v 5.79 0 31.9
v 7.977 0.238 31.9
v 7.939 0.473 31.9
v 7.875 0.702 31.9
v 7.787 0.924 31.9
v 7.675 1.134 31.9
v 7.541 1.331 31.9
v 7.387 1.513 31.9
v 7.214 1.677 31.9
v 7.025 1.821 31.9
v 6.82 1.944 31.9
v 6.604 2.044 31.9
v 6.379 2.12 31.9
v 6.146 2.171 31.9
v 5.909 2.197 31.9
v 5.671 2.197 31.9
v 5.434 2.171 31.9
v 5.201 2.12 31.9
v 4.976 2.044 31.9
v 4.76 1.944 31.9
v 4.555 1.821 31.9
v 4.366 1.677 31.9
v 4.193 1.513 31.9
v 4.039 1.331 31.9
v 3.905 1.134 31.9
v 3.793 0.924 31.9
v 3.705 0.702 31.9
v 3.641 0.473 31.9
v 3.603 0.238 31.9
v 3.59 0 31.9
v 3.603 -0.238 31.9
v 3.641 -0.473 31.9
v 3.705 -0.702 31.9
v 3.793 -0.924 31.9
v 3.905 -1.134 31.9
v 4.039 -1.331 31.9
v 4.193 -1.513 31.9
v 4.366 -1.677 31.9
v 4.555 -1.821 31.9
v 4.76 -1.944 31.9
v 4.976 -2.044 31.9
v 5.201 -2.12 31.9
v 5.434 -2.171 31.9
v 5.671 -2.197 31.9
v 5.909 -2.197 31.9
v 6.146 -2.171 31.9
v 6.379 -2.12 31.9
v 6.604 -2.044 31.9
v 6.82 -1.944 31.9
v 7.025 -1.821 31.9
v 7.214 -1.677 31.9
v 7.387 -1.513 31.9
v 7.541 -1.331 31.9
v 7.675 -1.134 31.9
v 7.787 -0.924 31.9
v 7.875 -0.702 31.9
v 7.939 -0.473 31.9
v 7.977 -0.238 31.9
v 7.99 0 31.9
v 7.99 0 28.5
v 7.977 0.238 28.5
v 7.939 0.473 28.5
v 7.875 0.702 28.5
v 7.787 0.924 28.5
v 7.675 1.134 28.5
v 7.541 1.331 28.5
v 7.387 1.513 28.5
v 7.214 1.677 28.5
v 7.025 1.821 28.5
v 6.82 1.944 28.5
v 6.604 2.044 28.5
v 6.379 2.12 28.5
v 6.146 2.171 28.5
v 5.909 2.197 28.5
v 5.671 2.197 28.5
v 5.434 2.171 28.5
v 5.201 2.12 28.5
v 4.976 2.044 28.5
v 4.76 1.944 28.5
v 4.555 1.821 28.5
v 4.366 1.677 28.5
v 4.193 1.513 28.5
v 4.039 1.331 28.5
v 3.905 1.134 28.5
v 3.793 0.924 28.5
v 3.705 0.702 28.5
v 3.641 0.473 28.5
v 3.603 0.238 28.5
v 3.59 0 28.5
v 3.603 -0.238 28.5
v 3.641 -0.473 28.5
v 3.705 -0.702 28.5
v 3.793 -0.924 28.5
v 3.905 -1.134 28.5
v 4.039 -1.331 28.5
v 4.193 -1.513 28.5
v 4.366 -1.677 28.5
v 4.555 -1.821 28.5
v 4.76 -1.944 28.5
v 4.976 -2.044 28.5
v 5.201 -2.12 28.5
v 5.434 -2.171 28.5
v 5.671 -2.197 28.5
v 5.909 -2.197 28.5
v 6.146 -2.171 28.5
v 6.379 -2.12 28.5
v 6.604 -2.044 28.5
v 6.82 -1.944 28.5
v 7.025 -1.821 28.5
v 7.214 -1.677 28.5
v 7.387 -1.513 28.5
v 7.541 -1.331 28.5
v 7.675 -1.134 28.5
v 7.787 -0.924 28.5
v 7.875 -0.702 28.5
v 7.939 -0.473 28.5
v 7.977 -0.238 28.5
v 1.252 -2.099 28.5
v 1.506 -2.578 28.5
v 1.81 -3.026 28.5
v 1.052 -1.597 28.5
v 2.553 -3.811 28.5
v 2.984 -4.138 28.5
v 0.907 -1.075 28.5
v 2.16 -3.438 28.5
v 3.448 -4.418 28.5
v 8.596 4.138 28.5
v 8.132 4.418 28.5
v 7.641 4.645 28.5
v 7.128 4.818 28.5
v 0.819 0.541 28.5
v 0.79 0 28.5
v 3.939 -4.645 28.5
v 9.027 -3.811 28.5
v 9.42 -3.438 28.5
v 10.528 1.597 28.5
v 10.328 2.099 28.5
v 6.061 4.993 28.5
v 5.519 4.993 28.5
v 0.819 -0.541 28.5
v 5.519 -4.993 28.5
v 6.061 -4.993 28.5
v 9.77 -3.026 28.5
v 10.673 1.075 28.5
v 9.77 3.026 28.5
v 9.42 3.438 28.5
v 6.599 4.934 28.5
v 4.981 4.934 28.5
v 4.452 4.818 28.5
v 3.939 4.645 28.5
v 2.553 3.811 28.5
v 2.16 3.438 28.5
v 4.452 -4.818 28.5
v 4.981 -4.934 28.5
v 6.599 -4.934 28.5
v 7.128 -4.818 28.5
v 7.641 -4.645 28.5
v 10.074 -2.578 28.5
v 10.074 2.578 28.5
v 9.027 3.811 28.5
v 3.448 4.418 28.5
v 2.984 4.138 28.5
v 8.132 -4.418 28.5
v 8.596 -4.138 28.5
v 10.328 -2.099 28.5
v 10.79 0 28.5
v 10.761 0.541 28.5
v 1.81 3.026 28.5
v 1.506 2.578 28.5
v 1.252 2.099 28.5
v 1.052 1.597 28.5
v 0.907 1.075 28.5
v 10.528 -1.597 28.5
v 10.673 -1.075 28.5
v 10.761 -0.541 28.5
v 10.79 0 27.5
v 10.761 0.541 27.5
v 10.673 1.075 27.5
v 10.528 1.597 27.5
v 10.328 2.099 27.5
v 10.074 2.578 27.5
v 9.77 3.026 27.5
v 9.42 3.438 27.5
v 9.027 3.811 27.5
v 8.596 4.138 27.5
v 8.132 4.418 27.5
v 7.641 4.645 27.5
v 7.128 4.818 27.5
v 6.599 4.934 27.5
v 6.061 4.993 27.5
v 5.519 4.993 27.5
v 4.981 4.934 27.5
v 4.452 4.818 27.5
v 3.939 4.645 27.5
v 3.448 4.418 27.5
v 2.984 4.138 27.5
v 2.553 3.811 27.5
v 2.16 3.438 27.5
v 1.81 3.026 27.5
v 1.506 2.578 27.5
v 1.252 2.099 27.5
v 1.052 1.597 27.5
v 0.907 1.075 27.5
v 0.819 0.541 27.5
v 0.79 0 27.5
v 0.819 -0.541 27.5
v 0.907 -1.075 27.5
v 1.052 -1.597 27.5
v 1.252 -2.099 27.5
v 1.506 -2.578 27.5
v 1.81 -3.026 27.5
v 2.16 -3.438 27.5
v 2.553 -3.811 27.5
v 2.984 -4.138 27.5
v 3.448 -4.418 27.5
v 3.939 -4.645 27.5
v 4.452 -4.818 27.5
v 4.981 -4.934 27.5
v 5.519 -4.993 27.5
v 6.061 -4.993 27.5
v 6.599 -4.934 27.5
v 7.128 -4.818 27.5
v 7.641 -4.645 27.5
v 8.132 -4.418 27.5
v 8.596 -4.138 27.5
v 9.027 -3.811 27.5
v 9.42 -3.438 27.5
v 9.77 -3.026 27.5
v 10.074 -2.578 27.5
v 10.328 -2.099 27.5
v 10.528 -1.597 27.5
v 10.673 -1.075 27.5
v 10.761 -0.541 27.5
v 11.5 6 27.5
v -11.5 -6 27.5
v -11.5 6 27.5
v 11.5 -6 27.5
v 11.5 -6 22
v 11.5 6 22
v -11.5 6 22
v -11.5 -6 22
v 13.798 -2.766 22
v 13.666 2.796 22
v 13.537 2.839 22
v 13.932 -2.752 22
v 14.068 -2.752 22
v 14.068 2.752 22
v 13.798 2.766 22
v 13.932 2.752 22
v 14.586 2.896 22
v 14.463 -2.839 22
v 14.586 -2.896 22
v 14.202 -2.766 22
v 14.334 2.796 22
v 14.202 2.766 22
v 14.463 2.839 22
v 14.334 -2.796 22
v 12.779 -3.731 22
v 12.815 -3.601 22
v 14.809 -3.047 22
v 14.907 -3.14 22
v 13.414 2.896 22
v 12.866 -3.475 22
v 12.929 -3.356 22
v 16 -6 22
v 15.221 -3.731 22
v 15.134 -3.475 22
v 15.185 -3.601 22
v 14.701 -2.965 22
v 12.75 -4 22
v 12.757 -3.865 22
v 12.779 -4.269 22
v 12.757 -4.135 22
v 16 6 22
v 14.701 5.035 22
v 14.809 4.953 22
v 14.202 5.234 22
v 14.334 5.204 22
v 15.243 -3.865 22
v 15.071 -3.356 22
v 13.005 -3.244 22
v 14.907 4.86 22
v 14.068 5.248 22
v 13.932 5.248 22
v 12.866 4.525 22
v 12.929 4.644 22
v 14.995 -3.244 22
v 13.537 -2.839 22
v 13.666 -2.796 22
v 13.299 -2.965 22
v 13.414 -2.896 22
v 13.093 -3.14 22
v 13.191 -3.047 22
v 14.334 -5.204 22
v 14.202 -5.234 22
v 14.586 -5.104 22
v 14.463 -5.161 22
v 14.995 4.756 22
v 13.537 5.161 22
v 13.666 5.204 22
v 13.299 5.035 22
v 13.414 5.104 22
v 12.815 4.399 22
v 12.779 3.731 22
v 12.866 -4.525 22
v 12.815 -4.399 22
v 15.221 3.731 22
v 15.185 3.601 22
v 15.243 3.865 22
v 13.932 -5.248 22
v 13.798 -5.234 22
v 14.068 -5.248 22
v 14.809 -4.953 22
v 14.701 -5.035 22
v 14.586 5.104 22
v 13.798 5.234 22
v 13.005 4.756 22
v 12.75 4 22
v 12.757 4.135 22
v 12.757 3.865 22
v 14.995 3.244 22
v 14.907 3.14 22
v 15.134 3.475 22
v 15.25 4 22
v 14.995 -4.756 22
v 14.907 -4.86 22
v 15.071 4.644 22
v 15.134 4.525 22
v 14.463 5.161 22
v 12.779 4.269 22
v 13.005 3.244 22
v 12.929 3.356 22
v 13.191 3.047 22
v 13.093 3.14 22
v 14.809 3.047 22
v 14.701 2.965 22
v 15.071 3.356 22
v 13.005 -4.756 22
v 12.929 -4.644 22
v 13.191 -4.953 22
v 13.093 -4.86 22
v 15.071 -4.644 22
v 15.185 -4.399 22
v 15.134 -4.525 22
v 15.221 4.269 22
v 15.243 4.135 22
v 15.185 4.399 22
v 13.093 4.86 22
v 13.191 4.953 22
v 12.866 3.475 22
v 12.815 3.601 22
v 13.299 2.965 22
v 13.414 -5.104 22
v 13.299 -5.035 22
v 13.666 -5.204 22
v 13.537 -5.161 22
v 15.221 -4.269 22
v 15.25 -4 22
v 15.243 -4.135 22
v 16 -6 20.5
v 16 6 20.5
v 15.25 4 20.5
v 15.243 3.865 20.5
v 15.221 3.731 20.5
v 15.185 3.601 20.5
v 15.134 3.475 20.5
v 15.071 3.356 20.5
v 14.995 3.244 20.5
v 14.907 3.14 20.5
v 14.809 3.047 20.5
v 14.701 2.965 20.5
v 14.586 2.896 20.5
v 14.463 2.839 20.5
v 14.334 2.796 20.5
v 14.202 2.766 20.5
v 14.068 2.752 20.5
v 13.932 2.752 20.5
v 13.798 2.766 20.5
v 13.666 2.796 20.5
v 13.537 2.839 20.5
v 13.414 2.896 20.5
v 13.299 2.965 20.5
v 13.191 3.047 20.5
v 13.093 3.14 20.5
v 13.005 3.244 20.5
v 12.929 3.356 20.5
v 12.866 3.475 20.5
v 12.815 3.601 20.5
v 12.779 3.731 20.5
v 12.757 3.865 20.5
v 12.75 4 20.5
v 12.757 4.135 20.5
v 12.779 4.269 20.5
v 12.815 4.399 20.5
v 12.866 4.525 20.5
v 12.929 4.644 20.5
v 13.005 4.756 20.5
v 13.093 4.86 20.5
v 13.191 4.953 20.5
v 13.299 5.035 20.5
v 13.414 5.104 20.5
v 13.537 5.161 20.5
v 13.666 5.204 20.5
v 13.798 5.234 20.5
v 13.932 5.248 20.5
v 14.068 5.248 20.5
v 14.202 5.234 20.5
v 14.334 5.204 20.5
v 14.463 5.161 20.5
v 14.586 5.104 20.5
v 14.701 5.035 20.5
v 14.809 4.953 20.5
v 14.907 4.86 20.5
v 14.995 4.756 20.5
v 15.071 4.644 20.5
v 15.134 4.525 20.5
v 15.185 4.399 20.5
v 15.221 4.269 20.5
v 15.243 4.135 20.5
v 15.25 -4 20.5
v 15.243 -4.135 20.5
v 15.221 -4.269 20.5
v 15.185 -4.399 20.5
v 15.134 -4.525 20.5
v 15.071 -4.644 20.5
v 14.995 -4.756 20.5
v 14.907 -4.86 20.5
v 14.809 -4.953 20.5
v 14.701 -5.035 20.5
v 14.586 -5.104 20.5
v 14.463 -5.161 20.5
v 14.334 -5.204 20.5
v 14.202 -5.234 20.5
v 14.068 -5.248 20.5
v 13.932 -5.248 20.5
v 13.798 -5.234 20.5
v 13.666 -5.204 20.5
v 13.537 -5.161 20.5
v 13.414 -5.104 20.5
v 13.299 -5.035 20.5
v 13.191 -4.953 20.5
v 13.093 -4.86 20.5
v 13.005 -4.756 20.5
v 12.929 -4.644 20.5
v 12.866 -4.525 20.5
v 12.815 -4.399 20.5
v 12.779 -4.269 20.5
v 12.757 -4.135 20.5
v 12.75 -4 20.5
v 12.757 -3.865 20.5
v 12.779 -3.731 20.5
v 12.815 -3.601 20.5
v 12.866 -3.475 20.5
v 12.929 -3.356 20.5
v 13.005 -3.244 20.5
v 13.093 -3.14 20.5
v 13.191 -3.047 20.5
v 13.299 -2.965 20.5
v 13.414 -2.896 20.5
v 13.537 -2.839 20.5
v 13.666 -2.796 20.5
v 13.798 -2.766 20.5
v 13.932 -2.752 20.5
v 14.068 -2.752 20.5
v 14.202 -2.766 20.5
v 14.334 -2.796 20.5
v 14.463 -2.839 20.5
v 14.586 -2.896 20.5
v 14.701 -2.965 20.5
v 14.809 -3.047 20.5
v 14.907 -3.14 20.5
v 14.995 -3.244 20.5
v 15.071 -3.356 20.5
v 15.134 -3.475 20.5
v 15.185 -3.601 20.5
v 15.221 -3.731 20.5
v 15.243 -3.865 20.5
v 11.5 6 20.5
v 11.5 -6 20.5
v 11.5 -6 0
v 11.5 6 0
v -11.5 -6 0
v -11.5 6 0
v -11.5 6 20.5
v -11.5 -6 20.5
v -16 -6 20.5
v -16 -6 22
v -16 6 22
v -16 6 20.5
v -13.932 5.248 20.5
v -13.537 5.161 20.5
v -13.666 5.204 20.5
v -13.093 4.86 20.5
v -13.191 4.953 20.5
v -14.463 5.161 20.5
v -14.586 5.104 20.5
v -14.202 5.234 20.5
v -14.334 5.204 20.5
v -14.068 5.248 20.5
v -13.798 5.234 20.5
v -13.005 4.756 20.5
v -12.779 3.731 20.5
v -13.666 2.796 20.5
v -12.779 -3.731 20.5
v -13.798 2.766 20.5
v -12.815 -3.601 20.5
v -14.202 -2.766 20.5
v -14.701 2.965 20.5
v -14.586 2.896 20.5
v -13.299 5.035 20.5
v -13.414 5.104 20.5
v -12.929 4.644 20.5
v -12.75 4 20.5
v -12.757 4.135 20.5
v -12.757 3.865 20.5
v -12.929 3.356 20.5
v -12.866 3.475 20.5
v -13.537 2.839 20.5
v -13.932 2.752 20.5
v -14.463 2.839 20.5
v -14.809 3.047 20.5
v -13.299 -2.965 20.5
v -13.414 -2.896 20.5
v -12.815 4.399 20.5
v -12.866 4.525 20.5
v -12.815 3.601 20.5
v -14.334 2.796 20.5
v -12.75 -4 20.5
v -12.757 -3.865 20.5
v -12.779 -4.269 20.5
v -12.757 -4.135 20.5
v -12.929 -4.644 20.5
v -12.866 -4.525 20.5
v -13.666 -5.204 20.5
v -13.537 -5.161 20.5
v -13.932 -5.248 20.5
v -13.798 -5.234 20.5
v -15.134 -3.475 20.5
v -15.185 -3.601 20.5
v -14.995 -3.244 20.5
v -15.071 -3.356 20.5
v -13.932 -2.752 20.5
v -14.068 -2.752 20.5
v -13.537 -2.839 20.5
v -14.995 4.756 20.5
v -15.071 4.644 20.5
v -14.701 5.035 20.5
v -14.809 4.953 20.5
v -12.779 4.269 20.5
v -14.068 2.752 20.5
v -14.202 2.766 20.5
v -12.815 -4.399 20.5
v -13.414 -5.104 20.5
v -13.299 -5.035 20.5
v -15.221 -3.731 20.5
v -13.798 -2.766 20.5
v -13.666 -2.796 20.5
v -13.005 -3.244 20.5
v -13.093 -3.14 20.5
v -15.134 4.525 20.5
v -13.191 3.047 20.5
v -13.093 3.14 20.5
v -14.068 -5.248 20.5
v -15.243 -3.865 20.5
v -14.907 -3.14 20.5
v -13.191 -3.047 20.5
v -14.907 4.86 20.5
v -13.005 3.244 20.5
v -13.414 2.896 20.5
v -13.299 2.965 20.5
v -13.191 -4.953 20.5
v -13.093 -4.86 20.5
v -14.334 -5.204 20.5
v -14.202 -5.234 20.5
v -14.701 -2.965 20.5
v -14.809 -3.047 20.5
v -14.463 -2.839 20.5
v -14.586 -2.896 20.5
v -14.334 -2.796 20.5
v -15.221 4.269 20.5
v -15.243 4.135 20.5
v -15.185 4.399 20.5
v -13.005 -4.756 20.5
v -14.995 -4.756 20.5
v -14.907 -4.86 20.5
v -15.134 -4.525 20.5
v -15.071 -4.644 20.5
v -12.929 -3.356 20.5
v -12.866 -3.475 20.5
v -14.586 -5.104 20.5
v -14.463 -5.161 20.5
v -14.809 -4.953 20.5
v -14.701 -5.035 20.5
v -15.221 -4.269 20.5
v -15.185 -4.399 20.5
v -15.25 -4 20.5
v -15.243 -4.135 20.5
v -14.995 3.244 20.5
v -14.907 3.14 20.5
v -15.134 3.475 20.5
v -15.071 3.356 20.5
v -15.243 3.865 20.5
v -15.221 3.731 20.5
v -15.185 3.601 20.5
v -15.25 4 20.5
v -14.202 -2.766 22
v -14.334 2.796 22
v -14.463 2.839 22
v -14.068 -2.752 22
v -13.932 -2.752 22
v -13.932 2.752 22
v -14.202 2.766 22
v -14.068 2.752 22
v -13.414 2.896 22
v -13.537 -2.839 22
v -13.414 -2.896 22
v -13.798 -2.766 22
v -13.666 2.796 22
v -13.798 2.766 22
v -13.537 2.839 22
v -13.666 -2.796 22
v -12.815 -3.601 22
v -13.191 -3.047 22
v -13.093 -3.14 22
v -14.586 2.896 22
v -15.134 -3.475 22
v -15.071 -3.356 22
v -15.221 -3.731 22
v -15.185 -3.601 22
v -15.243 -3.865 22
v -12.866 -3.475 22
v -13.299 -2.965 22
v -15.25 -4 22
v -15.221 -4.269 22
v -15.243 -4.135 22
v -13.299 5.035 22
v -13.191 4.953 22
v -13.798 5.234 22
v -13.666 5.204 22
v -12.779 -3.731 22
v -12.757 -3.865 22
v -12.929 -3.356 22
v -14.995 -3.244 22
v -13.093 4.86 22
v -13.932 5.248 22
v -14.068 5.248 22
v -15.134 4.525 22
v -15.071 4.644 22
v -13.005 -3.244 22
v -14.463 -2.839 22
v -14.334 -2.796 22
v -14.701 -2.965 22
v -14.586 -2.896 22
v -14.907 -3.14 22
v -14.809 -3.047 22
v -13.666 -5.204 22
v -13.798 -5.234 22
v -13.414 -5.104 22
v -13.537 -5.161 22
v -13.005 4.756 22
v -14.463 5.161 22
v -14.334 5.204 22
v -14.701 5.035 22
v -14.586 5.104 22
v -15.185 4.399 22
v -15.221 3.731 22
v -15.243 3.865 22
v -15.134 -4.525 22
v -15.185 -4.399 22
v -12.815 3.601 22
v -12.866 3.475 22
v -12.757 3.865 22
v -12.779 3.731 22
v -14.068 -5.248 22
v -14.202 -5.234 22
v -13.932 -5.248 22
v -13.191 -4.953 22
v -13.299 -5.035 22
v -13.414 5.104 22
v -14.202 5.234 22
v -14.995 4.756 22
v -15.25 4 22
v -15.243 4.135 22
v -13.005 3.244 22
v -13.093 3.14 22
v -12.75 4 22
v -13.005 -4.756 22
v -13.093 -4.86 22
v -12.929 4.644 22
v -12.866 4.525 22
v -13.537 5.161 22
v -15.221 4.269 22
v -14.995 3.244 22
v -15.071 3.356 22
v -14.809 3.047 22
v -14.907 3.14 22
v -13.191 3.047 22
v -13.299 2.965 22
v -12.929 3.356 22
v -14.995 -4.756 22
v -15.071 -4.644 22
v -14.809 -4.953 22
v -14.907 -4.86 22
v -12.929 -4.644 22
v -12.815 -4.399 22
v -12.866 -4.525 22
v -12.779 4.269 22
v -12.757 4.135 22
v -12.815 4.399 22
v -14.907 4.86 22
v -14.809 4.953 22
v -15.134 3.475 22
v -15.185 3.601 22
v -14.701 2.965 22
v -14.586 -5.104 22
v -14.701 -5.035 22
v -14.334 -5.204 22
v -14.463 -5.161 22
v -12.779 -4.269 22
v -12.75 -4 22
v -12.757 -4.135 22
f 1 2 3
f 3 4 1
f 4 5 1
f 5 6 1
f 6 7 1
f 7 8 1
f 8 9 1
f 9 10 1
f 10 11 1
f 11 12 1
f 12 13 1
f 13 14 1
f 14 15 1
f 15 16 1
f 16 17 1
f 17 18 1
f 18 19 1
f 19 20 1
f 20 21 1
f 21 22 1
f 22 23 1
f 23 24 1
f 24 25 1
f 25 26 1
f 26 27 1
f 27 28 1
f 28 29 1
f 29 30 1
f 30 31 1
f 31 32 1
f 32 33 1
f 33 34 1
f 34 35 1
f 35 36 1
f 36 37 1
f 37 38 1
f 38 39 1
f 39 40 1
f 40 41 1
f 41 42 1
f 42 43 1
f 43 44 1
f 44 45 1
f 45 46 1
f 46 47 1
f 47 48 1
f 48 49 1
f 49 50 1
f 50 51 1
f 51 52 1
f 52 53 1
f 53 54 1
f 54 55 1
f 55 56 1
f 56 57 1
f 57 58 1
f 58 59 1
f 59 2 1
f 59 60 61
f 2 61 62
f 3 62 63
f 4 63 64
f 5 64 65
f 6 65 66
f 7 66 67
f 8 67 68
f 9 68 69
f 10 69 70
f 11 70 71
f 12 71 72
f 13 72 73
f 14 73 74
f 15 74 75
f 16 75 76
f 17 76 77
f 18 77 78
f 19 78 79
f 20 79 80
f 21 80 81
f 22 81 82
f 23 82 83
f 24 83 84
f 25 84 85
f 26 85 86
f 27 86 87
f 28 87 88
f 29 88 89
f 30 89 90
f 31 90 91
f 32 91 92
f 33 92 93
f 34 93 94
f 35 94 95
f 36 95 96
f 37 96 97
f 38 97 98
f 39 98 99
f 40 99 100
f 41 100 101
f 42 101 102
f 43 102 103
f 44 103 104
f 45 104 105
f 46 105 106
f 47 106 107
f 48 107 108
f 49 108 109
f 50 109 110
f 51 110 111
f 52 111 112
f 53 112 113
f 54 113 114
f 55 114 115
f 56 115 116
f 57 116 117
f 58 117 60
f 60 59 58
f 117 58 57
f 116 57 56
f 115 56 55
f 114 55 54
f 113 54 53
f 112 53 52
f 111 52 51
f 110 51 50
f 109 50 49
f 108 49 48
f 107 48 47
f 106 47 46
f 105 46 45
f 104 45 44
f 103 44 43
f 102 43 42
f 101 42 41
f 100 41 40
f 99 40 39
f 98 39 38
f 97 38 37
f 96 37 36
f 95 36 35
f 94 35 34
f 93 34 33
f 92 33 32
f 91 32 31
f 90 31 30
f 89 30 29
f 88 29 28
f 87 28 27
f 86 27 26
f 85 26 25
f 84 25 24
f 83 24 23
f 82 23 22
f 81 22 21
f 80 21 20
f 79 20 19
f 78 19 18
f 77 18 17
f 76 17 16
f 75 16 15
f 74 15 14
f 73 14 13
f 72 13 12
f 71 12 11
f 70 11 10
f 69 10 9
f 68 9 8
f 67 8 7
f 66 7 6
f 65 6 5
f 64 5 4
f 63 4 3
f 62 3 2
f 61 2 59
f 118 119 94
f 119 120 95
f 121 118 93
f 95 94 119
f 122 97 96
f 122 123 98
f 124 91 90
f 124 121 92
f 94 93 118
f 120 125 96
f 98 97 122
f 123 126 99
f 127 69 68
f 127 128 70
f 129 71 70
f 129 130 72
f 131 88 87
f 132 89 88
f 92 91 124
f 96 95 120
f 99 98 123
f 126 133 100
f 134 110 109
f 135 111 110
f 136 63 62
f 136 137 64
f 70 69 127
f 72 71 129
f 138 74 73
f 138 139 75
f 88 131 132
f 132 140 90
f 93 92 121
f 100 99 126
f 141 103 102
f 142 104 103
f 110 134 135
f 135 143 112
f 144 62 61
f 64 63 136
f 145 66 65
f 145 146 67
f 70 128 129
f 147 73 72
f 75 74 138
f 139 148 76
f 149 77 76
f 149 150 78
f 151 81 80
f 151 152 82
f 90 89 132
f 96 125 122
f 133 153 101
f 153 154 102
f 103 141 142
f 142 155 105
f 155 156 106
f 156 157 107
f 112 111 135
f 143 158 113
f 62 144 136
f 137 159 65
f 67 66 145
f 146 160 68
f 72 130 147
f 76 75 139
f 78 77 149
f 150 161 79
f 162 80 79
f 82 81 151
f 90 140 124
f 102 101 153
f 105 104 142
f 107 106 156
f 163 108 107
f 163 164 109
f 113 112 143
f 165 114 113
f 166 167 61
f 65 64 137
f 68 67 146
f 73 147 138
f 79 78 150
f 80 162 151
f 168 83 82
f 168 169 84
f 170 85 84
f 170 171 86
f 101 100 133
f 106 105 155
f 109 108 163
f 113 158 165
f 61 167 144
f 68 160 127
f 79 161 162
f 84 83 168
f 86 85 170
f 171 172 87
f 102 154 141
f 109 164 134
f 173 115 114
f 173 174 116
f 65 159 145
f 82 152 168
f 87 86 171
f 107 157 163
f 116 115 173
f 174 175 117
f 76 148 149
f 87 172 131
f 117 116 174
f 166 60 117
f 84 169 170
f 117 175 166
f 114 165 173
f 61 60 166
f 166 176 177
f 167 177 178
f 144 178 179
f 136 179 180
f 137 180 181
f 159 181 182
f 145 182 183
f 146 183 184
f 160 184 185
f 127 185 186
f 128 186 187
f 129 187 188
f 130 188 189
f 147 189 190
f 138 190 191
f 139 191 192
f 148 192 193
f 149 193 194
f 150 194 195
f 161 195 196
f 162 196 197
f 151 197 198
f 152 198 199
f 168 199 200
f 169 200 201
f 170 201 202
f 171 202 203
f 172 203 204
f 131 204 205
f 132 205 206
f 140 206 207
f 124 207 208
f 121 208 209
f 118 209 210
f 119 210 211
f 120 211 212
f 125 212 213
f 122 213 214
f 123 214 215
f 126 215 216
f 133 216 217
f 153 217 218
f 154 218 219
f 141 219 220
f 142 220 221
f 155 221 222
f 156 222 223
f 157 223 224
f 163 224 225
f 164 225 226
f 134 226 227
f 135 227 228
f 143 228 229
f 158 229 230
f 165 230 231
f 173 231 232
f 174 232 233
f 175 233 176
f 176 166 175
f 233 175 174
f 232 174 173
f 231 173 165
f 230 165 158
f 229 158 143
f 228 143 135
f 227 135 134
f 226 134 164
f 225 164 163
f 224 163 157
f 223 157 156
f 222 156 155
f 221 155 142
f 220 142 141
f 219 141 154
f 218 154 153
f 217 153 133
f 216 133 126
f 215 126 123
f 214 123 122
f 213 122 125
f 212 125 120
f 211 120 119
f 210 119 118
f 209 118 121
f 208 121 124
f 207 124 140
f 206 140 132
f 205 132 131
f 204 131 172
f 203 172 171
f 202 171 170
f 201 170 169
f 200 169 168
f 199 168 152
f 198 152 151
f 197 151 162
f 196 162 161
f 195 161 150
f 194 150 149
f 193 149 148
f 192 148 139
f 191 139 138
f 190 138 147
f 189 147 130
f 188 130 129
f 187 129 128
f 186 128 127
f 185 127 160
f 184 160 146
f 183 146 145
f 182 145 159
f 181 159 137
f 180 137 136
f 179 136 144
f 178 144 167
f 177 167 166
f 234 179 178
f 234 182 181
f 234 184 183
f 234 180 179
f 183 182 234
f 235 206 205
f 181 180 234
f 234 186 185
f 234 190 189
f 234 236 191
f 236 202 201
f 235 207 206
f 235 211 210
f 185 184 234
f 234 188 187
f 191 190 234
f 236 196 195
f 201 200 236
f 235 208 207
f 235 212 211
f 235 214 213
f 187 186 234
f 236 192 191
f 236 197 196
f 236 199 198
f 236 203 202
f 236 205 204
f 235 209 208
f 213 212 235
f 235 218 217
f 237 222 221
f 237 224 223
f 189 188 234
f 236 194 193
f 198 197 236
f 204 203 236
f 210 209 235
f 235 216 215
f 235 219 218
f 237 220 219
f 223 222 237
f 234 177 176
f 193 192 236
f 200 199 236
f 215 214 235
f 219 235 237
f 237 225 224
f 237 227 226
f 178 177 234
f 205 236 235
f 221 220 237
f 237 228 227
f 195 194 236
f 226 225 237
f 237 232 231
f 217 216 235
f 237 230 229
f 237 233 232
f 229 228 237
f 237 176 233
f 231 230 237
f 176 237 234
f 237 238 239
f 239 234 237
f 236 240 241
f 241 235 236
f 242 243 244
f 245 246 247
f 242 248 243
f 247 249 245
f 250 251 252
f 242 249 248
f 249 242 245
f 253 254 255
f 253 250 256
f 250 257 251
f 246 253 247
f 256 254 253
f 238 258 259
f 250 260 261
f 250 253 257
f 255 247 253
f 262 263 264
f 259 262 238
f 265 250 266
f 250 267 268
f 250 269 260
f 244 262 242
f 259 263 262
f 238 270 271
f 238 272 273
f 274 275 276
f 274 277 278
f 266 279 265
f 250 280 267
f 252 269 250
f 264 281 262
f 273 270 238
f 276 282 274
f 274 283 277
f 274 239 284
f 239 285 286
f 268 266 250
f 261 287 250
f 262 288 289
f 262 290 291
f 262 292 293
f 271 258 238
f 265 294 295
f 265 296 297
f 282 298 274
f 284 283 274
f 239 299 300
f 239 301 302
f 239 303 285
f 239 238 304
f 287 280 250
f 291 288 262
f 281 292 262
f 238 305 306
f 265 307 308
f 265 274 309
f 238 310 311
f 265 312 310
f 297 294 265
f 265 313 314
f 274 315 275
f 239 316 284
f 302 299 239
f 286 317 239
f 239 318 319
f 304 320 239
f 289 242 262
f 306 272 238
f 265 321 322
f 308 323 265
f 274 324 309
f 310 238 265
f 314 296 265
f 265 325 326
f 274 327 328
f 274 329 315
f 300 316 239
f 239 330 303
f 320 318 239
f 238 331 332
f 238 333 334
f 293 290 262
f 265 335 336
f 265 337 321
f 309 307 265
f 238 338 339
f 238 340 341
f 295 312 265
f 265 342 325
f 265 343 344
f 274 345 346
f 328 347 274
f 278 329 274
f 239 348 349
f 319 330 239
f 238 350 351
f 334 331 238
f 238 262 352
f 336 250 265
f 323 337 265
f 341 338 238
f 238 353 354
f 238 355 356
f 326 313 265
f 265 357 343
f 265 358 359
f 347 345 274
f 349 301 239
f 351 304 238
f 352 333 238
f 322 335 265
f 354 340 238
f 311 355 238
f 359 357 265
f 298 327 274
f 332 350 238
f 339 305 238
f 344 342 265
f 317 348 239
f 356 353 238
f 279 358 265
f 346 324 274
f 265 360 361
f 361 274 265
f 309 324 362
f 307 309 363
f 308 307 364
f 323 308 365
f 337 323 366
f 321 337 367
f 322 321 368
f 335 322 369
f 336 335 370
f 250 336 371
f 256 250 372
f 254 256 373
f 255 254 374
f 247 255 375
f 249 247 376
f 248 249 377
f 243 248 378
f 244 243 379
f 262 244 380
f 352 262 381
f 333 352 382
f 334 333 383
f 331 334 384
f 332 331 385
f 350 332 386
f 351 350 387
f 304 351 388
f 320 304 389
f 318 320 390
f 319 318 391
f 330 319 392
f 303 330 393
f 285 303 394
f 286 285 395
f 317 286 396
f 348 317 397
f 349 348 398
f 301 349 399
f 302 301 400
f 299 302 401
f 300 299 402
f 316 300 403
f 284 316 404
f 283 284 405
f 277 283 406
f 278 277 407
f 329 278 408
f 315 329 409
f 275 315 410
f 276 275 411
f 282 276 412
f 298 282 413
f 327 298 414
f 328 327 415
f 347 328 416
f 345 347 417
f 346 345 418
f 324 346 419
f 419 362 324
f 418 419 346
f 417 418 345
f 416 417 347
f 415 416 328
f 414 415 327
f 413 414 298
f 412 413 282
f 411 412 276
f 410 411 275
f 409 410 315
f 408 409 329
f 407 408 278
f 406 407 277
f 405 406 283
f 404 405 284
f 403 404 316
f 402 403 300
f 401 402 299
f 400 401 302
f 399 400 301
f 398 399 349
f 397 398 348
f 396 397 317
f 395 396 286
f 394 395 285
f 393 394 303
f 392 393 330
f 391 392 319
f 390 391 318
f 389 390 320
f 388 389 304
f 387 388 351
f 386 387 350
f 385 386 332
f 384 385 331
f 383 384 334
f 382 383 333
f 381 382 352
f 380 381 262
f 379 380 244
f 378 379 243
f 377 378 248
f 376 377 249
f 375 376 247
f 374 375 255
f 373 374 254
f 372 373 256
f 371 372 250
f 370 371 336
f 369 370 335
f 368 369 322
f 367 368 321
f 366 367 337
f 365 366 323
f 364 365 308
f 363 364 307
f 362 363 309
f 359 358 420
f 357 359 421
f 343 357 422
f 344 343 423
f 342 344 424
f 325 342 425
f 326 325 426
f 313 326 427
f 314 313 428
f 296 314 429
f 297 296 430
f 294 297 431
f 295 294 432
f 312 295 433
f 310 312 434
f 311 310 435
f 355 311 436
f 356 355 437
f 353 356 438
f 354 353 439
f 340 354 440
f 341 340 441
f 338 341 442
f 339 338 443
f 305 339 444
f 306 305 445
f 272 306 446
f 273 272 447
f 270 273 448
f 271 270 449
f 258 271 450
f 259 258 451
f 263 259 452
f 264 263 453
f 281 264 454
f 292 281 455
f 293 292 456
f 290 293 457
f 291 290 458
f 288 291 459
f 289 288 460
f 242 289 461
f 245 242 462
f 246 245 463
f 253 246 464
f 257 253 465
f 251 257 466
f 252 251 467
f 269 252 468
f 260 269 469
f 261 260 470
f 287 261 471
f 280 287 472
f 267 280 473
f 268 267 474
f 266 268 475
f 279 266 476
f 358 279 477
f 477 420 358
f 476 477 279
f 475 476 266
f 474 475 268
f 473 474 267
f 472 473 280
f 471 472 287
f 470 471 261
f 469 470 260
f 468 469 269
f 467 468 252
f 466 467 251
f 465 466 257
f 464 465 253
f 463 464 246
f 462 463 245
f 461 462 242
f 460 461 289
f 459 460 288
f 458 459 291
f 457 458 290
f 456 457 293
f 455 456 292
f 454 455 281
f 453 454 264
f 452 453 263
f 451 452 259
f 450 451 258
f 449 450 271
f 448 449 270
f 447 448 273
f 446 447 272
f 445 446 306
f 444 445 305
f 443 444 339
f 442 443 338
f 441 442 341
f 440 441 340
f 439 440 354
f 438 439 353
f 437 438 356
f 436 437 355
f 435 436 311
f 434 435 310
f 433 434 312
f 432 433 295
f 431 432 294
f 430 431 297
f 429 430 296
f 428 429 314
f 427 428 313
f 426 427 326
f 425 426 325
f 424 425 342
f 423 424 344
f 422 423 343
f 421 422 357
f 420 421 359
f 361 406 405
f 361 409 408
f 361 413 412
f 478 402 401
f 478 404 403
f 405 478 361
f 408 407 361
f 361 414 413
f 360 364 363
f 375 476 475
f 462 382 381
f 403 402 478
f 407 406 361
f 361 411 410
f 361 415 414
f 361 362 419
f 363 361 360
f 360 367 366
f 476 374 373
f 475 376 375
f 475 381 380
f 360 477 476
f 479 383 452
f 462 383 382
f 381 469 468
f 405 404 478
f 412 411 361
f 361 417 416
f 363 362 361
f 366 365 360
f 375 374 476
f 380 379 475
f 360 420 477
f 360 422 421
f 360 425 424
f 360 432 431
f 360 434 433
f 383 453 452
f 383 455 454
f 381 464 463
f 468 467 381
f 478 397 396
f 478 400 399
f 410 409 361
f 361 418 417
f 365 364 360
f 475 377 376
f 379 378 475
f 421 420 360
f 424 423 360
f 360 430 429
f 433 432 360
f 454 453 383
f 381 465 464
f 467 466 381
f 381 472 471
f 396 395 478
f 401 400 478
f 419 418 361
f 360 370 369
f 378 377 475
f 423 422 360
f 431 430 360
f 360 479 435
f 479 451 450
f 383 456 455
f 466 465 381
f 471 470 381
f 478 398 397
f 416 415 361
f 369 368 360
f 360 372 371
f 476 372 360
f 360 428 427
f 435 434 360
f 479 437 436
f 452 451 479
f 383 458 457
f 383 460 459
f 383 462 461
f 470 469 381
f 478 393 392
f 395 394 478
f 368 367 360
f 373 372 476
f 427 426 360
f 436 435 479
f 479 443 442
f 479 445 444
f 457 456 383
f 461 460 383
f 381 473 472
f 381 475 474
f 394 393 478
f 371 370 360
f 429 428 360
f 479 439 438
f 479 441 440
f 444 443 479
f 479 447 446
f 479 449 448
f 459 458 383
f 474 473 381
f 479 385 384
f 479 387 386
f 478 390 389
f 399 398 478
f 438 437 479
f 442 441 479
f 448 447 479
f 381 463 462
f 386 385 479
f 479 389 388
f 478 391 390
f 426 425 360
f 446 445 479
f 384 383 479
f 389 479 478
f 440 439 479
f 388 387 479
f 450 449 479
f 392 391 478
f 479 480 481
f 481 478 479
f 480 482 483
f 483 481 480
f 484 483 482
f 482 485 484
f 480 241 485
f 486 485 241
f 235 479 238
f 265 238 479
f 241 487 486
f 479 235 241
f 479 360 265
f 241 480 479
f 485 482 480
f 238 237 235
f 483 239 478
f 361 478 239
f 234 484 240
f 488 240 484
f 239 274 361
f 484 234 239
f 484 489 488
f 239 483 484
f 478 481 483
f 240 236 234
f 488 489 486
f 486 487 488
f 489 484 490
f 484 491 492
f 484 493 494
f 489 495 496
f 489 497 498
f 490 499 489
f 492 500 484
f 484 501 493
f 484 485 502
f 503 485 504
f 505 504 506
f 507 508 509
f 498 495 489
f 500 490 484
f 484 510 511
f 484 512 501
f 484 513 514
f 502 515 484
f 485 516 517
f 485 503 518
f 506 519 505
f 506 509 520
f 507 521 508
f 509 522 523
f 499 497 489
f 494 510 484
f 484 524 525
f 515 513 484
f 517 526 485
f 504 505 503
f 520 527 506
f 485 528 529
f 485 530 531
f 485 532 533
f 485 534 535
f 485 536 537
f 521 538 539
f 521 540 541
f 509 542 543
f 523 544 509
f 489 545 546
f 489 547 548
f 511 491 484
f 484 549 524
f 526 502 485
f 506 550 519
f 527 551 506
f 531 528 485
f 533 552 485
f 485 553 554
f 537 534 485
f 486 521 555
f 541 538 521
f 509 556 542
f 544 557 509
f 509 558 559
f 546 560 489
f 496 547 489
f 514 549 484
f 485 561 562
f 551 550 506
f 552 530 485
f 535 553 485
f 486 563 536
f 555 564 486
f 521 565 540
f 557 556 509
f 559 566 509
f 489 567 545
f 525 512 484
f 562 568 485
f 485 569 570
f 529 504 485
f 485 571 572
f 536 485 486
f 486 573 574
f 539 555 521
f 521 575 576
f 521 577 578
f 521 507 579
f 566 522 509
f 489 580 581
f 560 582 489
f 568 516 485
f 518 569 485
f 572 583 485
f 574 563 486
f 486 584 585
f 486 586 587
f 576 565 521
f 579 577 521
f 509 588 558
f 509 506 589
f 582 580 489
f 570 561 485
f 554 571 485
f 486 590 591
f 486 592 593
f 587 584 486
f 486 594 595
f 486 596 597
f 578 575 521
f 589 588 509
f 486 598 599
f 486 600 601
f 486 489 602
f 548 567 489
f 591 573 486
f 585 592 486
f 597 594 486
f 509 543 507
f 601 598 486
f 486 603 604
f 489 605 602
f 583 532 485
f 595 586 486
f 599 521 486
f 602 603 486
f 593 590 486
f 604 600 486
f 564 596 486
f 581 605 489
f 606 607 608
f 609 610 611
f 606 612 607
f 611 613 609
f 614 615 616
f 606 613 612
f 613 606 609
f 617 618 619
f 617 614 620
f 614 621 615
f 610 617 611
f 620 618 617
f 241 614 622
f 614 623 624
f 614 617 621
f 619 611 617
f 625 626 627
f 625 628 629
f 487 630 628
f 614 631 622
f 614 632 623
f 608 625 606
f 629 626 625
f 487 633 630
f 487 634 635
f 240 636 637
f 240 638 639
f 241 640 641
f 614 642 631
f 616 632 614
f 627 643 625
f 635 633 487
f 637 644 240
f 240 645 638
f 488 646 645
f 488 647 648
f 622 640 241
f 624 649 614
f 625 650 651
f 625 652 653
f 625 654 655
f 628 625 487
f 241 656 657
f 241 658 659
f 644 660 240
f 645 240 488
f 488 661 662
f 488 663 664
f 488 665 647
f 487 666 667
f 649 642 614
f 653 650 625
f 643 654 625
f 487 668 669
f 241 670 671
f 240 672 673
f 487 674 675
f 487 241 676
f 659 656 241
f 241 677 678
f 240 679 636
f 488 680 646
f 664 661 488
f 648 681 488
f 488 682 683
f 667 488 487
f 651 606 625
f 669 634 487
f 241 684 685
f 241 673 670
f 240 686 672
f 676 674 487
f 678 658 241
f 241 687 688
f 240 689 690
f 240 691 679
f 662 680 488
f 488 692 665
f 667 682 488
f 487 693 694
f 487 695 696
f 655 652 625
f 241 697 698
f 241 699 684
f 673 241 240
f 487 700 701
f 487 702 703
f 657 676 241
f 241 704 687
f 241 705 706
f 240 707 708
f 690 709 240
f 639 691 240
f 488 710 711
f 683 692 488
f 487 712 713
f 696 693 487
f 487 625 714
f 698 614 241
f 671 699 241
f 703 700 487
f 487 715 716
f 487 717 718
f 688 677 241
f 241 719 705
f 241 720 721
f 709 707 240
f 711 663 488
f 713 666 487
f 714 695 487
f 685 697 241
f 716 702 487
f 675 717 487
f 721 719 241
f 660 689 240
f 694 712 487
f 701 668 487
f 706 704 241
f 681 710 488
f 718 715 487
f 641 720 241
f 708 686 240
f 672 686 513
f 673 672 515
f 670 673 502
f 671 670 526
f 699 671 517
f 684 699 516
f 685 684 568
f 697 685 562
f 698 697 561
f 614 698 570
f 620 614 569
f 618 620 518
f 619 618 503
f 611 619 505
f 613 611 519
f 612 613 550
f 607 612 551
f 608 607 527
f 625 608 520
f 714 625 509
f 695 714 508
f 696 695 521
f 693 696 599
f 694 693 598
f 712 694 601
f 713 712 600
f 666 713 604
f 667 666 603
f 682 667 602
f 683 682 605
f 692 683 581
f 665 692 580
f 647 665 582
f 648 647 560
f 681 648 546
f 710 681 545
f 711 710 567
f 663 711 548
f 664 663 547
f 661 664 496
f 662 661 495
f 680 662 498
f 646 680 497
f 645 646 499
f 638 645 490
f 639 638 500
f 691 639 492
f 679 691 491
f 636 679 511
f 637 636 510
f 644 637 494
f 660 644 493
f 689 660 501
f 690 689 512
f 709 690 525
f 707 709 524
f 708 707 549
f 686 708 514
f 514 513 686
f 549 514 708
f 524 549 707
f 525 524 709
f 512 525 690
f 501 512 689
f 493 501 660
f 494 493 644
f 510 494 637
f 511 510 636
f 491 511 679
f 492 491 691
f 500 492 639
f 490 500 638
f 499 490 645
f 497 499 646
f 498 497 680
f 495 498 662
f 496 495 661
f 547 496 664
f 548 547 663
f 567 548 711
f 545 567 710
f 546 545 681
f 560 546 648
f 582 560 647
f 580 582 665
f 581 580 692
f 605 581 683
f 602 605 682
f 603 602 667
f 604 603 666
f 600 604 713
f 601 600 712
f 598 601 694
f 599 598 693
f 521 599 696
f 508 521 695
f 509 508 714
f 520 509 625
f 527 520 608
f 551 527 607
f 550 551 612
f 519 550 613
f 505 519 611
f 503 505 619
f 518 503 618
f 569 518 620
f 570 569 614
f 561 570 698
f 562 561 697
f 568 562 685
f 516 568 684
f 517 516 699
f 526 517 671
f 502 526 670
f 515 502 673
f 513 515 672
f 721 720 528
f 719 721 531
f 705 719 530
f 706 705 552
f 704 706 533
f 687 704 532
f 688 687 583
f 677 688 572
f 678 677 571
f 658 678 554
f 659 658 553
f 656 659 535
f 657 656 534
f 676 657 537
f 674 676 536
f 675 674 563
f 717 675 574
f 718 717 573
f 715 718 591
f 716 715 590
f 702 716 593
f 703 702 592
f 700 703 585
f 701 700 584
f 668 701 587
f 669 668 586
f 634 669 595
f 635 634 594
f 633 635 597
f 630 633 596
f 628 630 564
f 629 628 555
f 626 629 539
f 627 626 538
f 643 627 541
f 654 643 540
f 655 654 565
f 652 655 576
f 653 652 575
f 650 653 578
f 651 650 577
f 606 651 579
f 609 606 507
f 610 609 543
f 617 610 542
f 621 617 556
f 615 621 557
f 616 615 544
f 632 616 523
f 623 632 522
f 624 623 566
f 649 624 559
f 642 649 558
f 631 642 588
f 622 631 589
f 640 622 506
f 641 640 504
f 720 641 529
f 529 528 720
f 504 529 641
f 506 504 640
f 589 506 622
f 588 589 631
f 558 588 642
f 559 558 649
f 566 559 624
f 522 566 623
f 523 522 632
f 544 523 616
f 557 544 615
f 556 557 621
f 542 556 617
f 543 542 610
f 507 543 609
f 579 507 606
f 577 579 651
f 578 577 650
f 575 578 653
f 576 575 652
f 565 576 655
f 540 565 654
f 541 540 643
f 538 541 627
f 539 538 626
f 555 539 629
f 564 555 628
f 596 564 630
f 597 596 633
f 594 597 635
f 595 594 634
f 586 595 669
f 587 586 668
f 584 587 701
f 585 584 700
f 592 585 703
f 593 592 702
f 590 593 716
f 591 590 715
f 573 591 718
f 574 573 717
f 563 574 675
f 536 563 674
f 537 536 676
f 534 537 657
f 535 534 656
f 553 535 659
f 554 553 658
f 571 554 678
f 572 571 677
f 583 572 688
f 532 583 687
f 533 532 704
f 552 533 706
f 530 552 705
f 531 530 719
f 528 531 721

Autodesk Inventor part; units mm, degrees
ref_plane "YZ Plane" through (0, 0, 0) normal (1, 0, 0) x (0, 1, 0)
ref_plane "XZ Plane" through (0, 0, 0) normal (0, 1, 0) x (-1, 0, 0)
ref_plane "XY Plane" through (0, 0, 0) normal (0, 0, 1) x (1, 0, 0)
sketch "スケッチ1" plane through (0, 0, 0) normal (0, 0, 1) x (1, 0, 0)
  line L0 (11.5, 6) -> (-11.5, 6)
  line L1 (-11.5, 6) -> (-11.5, -6)
  line L2 (-11.5, -6) -> (11.5, -6)
  line L3 (11.5, -6) -> (11.5, 6)
  line L4 (11.5, 6) -> (-11.5, -6) construction
  line L5 (-11.5, 6) -> (11.5, -6) construction
  point P0 (0, 0)
  dimension "d0" = 23
  dimension "d1" = 12
extrude "押し出し1" add sketch "スケッチ1" along normal blind 20.5
sketch "スケッチ2" plane through (0, 0, 20.5) normal (0, 0, 1) x (1, 0, 0)
  line L0 (-16, 6) -> (16, 6)
  line L1 (16, 6) -> (16, -6)
  line L2 (16, -6) -> (-16, -6)
  line L3 (-16, -6) -> (-16, 6)
  line L4 (-16, 6) -> (16, -6) construction
  line L5 (16, 6) -> (-16, -6) construction
  point P0 (0, 0)
  dimension "d4" = 32
  dimension "d5" = 12
extrude "押し出し2" add sketch "スケッチ2" along normal blind 1.5
sketch "スケッチ3" plane through (0, 0, 22) normal (0, 0, 1) x (1, 0, 0)
  line L0 (-11.5, 6) -> (-11.5, -6) projected
  line L1 (11.5, 6) -> (-11.5, 6) projected
  line L2 (11.5, -6) -> (11.5, 6) projected
  line L3 (-11.5, -6) -> (11.5, -6) projected
  point P0 (0, 0)
extrude "押し出し3" add sketch "スケッチ3" along normal blind 5.5
sketch "スケッチ4" plane through (0, 0, 27.5) normal (0, 0, 1) x (1, 0, 0)
  circle A0 centre (5.79, 0) radius 5
  line L0 (11.5, -6) -> (11.5, 6) projected
  line L1 (11.5, 6) -> (-11.5, 6) projected
  point P0 (0, 0)
  dimension "d10" = 5.71
  dimension "d11" = 6
  dimension "d12" = 10
extrude "押し出し4" add sketch "スケッチ4" along normal blind 1
sketch "スケッチ5" plane through (5.79, 0, 28.5) normal (0, 0, 1) x (1, 0, 0)
  circle A0 centre (0, 0) radius 5 projected
  circle A1 centre (0, 0) radius 2.2
  point P0 (-5.79, 0)
  dimension "d15" = 4.4
extrude "押し出し5" add sketch "スケッチ5" along normal blind 3.4 contours A1
sketch "スケッチ6" plane through (0, 0, 22) normal (0, 0, 1) x (1, 0, 0)
  line L0 (-19.7007, 0) -> (19.7007, 0)
  line L1 (0, -8.8838) -> (0, 8.8838)
  circle A0 centre (5.79, 0) radius 2.2 projected
  circle A1 centre (5.79, 0) radius 2.2 projected
  line L2 (-11.5, 6) -> (-16, 6) projected
  line L3 (16, 6) -> (11.5, 6) projected
  point P0 (0, 0)
  point P1 (-14, 4)
  point P2 (-14, -4)
  point P3 (14, 4)
  point P4 (14, -4)
  dimension "d18" = 19.79
  dimension "d19" = 2
  dimension "d20" = 8.21
  dimension "d21" = 2
hole "穴1" at (-14, 4, 22) at (-14, -4, 22) at (14, 4, 22) at (14, -4, 22) direction (0, 0, -1) diameter 2.5 end through all
properties part number "STS3032"
